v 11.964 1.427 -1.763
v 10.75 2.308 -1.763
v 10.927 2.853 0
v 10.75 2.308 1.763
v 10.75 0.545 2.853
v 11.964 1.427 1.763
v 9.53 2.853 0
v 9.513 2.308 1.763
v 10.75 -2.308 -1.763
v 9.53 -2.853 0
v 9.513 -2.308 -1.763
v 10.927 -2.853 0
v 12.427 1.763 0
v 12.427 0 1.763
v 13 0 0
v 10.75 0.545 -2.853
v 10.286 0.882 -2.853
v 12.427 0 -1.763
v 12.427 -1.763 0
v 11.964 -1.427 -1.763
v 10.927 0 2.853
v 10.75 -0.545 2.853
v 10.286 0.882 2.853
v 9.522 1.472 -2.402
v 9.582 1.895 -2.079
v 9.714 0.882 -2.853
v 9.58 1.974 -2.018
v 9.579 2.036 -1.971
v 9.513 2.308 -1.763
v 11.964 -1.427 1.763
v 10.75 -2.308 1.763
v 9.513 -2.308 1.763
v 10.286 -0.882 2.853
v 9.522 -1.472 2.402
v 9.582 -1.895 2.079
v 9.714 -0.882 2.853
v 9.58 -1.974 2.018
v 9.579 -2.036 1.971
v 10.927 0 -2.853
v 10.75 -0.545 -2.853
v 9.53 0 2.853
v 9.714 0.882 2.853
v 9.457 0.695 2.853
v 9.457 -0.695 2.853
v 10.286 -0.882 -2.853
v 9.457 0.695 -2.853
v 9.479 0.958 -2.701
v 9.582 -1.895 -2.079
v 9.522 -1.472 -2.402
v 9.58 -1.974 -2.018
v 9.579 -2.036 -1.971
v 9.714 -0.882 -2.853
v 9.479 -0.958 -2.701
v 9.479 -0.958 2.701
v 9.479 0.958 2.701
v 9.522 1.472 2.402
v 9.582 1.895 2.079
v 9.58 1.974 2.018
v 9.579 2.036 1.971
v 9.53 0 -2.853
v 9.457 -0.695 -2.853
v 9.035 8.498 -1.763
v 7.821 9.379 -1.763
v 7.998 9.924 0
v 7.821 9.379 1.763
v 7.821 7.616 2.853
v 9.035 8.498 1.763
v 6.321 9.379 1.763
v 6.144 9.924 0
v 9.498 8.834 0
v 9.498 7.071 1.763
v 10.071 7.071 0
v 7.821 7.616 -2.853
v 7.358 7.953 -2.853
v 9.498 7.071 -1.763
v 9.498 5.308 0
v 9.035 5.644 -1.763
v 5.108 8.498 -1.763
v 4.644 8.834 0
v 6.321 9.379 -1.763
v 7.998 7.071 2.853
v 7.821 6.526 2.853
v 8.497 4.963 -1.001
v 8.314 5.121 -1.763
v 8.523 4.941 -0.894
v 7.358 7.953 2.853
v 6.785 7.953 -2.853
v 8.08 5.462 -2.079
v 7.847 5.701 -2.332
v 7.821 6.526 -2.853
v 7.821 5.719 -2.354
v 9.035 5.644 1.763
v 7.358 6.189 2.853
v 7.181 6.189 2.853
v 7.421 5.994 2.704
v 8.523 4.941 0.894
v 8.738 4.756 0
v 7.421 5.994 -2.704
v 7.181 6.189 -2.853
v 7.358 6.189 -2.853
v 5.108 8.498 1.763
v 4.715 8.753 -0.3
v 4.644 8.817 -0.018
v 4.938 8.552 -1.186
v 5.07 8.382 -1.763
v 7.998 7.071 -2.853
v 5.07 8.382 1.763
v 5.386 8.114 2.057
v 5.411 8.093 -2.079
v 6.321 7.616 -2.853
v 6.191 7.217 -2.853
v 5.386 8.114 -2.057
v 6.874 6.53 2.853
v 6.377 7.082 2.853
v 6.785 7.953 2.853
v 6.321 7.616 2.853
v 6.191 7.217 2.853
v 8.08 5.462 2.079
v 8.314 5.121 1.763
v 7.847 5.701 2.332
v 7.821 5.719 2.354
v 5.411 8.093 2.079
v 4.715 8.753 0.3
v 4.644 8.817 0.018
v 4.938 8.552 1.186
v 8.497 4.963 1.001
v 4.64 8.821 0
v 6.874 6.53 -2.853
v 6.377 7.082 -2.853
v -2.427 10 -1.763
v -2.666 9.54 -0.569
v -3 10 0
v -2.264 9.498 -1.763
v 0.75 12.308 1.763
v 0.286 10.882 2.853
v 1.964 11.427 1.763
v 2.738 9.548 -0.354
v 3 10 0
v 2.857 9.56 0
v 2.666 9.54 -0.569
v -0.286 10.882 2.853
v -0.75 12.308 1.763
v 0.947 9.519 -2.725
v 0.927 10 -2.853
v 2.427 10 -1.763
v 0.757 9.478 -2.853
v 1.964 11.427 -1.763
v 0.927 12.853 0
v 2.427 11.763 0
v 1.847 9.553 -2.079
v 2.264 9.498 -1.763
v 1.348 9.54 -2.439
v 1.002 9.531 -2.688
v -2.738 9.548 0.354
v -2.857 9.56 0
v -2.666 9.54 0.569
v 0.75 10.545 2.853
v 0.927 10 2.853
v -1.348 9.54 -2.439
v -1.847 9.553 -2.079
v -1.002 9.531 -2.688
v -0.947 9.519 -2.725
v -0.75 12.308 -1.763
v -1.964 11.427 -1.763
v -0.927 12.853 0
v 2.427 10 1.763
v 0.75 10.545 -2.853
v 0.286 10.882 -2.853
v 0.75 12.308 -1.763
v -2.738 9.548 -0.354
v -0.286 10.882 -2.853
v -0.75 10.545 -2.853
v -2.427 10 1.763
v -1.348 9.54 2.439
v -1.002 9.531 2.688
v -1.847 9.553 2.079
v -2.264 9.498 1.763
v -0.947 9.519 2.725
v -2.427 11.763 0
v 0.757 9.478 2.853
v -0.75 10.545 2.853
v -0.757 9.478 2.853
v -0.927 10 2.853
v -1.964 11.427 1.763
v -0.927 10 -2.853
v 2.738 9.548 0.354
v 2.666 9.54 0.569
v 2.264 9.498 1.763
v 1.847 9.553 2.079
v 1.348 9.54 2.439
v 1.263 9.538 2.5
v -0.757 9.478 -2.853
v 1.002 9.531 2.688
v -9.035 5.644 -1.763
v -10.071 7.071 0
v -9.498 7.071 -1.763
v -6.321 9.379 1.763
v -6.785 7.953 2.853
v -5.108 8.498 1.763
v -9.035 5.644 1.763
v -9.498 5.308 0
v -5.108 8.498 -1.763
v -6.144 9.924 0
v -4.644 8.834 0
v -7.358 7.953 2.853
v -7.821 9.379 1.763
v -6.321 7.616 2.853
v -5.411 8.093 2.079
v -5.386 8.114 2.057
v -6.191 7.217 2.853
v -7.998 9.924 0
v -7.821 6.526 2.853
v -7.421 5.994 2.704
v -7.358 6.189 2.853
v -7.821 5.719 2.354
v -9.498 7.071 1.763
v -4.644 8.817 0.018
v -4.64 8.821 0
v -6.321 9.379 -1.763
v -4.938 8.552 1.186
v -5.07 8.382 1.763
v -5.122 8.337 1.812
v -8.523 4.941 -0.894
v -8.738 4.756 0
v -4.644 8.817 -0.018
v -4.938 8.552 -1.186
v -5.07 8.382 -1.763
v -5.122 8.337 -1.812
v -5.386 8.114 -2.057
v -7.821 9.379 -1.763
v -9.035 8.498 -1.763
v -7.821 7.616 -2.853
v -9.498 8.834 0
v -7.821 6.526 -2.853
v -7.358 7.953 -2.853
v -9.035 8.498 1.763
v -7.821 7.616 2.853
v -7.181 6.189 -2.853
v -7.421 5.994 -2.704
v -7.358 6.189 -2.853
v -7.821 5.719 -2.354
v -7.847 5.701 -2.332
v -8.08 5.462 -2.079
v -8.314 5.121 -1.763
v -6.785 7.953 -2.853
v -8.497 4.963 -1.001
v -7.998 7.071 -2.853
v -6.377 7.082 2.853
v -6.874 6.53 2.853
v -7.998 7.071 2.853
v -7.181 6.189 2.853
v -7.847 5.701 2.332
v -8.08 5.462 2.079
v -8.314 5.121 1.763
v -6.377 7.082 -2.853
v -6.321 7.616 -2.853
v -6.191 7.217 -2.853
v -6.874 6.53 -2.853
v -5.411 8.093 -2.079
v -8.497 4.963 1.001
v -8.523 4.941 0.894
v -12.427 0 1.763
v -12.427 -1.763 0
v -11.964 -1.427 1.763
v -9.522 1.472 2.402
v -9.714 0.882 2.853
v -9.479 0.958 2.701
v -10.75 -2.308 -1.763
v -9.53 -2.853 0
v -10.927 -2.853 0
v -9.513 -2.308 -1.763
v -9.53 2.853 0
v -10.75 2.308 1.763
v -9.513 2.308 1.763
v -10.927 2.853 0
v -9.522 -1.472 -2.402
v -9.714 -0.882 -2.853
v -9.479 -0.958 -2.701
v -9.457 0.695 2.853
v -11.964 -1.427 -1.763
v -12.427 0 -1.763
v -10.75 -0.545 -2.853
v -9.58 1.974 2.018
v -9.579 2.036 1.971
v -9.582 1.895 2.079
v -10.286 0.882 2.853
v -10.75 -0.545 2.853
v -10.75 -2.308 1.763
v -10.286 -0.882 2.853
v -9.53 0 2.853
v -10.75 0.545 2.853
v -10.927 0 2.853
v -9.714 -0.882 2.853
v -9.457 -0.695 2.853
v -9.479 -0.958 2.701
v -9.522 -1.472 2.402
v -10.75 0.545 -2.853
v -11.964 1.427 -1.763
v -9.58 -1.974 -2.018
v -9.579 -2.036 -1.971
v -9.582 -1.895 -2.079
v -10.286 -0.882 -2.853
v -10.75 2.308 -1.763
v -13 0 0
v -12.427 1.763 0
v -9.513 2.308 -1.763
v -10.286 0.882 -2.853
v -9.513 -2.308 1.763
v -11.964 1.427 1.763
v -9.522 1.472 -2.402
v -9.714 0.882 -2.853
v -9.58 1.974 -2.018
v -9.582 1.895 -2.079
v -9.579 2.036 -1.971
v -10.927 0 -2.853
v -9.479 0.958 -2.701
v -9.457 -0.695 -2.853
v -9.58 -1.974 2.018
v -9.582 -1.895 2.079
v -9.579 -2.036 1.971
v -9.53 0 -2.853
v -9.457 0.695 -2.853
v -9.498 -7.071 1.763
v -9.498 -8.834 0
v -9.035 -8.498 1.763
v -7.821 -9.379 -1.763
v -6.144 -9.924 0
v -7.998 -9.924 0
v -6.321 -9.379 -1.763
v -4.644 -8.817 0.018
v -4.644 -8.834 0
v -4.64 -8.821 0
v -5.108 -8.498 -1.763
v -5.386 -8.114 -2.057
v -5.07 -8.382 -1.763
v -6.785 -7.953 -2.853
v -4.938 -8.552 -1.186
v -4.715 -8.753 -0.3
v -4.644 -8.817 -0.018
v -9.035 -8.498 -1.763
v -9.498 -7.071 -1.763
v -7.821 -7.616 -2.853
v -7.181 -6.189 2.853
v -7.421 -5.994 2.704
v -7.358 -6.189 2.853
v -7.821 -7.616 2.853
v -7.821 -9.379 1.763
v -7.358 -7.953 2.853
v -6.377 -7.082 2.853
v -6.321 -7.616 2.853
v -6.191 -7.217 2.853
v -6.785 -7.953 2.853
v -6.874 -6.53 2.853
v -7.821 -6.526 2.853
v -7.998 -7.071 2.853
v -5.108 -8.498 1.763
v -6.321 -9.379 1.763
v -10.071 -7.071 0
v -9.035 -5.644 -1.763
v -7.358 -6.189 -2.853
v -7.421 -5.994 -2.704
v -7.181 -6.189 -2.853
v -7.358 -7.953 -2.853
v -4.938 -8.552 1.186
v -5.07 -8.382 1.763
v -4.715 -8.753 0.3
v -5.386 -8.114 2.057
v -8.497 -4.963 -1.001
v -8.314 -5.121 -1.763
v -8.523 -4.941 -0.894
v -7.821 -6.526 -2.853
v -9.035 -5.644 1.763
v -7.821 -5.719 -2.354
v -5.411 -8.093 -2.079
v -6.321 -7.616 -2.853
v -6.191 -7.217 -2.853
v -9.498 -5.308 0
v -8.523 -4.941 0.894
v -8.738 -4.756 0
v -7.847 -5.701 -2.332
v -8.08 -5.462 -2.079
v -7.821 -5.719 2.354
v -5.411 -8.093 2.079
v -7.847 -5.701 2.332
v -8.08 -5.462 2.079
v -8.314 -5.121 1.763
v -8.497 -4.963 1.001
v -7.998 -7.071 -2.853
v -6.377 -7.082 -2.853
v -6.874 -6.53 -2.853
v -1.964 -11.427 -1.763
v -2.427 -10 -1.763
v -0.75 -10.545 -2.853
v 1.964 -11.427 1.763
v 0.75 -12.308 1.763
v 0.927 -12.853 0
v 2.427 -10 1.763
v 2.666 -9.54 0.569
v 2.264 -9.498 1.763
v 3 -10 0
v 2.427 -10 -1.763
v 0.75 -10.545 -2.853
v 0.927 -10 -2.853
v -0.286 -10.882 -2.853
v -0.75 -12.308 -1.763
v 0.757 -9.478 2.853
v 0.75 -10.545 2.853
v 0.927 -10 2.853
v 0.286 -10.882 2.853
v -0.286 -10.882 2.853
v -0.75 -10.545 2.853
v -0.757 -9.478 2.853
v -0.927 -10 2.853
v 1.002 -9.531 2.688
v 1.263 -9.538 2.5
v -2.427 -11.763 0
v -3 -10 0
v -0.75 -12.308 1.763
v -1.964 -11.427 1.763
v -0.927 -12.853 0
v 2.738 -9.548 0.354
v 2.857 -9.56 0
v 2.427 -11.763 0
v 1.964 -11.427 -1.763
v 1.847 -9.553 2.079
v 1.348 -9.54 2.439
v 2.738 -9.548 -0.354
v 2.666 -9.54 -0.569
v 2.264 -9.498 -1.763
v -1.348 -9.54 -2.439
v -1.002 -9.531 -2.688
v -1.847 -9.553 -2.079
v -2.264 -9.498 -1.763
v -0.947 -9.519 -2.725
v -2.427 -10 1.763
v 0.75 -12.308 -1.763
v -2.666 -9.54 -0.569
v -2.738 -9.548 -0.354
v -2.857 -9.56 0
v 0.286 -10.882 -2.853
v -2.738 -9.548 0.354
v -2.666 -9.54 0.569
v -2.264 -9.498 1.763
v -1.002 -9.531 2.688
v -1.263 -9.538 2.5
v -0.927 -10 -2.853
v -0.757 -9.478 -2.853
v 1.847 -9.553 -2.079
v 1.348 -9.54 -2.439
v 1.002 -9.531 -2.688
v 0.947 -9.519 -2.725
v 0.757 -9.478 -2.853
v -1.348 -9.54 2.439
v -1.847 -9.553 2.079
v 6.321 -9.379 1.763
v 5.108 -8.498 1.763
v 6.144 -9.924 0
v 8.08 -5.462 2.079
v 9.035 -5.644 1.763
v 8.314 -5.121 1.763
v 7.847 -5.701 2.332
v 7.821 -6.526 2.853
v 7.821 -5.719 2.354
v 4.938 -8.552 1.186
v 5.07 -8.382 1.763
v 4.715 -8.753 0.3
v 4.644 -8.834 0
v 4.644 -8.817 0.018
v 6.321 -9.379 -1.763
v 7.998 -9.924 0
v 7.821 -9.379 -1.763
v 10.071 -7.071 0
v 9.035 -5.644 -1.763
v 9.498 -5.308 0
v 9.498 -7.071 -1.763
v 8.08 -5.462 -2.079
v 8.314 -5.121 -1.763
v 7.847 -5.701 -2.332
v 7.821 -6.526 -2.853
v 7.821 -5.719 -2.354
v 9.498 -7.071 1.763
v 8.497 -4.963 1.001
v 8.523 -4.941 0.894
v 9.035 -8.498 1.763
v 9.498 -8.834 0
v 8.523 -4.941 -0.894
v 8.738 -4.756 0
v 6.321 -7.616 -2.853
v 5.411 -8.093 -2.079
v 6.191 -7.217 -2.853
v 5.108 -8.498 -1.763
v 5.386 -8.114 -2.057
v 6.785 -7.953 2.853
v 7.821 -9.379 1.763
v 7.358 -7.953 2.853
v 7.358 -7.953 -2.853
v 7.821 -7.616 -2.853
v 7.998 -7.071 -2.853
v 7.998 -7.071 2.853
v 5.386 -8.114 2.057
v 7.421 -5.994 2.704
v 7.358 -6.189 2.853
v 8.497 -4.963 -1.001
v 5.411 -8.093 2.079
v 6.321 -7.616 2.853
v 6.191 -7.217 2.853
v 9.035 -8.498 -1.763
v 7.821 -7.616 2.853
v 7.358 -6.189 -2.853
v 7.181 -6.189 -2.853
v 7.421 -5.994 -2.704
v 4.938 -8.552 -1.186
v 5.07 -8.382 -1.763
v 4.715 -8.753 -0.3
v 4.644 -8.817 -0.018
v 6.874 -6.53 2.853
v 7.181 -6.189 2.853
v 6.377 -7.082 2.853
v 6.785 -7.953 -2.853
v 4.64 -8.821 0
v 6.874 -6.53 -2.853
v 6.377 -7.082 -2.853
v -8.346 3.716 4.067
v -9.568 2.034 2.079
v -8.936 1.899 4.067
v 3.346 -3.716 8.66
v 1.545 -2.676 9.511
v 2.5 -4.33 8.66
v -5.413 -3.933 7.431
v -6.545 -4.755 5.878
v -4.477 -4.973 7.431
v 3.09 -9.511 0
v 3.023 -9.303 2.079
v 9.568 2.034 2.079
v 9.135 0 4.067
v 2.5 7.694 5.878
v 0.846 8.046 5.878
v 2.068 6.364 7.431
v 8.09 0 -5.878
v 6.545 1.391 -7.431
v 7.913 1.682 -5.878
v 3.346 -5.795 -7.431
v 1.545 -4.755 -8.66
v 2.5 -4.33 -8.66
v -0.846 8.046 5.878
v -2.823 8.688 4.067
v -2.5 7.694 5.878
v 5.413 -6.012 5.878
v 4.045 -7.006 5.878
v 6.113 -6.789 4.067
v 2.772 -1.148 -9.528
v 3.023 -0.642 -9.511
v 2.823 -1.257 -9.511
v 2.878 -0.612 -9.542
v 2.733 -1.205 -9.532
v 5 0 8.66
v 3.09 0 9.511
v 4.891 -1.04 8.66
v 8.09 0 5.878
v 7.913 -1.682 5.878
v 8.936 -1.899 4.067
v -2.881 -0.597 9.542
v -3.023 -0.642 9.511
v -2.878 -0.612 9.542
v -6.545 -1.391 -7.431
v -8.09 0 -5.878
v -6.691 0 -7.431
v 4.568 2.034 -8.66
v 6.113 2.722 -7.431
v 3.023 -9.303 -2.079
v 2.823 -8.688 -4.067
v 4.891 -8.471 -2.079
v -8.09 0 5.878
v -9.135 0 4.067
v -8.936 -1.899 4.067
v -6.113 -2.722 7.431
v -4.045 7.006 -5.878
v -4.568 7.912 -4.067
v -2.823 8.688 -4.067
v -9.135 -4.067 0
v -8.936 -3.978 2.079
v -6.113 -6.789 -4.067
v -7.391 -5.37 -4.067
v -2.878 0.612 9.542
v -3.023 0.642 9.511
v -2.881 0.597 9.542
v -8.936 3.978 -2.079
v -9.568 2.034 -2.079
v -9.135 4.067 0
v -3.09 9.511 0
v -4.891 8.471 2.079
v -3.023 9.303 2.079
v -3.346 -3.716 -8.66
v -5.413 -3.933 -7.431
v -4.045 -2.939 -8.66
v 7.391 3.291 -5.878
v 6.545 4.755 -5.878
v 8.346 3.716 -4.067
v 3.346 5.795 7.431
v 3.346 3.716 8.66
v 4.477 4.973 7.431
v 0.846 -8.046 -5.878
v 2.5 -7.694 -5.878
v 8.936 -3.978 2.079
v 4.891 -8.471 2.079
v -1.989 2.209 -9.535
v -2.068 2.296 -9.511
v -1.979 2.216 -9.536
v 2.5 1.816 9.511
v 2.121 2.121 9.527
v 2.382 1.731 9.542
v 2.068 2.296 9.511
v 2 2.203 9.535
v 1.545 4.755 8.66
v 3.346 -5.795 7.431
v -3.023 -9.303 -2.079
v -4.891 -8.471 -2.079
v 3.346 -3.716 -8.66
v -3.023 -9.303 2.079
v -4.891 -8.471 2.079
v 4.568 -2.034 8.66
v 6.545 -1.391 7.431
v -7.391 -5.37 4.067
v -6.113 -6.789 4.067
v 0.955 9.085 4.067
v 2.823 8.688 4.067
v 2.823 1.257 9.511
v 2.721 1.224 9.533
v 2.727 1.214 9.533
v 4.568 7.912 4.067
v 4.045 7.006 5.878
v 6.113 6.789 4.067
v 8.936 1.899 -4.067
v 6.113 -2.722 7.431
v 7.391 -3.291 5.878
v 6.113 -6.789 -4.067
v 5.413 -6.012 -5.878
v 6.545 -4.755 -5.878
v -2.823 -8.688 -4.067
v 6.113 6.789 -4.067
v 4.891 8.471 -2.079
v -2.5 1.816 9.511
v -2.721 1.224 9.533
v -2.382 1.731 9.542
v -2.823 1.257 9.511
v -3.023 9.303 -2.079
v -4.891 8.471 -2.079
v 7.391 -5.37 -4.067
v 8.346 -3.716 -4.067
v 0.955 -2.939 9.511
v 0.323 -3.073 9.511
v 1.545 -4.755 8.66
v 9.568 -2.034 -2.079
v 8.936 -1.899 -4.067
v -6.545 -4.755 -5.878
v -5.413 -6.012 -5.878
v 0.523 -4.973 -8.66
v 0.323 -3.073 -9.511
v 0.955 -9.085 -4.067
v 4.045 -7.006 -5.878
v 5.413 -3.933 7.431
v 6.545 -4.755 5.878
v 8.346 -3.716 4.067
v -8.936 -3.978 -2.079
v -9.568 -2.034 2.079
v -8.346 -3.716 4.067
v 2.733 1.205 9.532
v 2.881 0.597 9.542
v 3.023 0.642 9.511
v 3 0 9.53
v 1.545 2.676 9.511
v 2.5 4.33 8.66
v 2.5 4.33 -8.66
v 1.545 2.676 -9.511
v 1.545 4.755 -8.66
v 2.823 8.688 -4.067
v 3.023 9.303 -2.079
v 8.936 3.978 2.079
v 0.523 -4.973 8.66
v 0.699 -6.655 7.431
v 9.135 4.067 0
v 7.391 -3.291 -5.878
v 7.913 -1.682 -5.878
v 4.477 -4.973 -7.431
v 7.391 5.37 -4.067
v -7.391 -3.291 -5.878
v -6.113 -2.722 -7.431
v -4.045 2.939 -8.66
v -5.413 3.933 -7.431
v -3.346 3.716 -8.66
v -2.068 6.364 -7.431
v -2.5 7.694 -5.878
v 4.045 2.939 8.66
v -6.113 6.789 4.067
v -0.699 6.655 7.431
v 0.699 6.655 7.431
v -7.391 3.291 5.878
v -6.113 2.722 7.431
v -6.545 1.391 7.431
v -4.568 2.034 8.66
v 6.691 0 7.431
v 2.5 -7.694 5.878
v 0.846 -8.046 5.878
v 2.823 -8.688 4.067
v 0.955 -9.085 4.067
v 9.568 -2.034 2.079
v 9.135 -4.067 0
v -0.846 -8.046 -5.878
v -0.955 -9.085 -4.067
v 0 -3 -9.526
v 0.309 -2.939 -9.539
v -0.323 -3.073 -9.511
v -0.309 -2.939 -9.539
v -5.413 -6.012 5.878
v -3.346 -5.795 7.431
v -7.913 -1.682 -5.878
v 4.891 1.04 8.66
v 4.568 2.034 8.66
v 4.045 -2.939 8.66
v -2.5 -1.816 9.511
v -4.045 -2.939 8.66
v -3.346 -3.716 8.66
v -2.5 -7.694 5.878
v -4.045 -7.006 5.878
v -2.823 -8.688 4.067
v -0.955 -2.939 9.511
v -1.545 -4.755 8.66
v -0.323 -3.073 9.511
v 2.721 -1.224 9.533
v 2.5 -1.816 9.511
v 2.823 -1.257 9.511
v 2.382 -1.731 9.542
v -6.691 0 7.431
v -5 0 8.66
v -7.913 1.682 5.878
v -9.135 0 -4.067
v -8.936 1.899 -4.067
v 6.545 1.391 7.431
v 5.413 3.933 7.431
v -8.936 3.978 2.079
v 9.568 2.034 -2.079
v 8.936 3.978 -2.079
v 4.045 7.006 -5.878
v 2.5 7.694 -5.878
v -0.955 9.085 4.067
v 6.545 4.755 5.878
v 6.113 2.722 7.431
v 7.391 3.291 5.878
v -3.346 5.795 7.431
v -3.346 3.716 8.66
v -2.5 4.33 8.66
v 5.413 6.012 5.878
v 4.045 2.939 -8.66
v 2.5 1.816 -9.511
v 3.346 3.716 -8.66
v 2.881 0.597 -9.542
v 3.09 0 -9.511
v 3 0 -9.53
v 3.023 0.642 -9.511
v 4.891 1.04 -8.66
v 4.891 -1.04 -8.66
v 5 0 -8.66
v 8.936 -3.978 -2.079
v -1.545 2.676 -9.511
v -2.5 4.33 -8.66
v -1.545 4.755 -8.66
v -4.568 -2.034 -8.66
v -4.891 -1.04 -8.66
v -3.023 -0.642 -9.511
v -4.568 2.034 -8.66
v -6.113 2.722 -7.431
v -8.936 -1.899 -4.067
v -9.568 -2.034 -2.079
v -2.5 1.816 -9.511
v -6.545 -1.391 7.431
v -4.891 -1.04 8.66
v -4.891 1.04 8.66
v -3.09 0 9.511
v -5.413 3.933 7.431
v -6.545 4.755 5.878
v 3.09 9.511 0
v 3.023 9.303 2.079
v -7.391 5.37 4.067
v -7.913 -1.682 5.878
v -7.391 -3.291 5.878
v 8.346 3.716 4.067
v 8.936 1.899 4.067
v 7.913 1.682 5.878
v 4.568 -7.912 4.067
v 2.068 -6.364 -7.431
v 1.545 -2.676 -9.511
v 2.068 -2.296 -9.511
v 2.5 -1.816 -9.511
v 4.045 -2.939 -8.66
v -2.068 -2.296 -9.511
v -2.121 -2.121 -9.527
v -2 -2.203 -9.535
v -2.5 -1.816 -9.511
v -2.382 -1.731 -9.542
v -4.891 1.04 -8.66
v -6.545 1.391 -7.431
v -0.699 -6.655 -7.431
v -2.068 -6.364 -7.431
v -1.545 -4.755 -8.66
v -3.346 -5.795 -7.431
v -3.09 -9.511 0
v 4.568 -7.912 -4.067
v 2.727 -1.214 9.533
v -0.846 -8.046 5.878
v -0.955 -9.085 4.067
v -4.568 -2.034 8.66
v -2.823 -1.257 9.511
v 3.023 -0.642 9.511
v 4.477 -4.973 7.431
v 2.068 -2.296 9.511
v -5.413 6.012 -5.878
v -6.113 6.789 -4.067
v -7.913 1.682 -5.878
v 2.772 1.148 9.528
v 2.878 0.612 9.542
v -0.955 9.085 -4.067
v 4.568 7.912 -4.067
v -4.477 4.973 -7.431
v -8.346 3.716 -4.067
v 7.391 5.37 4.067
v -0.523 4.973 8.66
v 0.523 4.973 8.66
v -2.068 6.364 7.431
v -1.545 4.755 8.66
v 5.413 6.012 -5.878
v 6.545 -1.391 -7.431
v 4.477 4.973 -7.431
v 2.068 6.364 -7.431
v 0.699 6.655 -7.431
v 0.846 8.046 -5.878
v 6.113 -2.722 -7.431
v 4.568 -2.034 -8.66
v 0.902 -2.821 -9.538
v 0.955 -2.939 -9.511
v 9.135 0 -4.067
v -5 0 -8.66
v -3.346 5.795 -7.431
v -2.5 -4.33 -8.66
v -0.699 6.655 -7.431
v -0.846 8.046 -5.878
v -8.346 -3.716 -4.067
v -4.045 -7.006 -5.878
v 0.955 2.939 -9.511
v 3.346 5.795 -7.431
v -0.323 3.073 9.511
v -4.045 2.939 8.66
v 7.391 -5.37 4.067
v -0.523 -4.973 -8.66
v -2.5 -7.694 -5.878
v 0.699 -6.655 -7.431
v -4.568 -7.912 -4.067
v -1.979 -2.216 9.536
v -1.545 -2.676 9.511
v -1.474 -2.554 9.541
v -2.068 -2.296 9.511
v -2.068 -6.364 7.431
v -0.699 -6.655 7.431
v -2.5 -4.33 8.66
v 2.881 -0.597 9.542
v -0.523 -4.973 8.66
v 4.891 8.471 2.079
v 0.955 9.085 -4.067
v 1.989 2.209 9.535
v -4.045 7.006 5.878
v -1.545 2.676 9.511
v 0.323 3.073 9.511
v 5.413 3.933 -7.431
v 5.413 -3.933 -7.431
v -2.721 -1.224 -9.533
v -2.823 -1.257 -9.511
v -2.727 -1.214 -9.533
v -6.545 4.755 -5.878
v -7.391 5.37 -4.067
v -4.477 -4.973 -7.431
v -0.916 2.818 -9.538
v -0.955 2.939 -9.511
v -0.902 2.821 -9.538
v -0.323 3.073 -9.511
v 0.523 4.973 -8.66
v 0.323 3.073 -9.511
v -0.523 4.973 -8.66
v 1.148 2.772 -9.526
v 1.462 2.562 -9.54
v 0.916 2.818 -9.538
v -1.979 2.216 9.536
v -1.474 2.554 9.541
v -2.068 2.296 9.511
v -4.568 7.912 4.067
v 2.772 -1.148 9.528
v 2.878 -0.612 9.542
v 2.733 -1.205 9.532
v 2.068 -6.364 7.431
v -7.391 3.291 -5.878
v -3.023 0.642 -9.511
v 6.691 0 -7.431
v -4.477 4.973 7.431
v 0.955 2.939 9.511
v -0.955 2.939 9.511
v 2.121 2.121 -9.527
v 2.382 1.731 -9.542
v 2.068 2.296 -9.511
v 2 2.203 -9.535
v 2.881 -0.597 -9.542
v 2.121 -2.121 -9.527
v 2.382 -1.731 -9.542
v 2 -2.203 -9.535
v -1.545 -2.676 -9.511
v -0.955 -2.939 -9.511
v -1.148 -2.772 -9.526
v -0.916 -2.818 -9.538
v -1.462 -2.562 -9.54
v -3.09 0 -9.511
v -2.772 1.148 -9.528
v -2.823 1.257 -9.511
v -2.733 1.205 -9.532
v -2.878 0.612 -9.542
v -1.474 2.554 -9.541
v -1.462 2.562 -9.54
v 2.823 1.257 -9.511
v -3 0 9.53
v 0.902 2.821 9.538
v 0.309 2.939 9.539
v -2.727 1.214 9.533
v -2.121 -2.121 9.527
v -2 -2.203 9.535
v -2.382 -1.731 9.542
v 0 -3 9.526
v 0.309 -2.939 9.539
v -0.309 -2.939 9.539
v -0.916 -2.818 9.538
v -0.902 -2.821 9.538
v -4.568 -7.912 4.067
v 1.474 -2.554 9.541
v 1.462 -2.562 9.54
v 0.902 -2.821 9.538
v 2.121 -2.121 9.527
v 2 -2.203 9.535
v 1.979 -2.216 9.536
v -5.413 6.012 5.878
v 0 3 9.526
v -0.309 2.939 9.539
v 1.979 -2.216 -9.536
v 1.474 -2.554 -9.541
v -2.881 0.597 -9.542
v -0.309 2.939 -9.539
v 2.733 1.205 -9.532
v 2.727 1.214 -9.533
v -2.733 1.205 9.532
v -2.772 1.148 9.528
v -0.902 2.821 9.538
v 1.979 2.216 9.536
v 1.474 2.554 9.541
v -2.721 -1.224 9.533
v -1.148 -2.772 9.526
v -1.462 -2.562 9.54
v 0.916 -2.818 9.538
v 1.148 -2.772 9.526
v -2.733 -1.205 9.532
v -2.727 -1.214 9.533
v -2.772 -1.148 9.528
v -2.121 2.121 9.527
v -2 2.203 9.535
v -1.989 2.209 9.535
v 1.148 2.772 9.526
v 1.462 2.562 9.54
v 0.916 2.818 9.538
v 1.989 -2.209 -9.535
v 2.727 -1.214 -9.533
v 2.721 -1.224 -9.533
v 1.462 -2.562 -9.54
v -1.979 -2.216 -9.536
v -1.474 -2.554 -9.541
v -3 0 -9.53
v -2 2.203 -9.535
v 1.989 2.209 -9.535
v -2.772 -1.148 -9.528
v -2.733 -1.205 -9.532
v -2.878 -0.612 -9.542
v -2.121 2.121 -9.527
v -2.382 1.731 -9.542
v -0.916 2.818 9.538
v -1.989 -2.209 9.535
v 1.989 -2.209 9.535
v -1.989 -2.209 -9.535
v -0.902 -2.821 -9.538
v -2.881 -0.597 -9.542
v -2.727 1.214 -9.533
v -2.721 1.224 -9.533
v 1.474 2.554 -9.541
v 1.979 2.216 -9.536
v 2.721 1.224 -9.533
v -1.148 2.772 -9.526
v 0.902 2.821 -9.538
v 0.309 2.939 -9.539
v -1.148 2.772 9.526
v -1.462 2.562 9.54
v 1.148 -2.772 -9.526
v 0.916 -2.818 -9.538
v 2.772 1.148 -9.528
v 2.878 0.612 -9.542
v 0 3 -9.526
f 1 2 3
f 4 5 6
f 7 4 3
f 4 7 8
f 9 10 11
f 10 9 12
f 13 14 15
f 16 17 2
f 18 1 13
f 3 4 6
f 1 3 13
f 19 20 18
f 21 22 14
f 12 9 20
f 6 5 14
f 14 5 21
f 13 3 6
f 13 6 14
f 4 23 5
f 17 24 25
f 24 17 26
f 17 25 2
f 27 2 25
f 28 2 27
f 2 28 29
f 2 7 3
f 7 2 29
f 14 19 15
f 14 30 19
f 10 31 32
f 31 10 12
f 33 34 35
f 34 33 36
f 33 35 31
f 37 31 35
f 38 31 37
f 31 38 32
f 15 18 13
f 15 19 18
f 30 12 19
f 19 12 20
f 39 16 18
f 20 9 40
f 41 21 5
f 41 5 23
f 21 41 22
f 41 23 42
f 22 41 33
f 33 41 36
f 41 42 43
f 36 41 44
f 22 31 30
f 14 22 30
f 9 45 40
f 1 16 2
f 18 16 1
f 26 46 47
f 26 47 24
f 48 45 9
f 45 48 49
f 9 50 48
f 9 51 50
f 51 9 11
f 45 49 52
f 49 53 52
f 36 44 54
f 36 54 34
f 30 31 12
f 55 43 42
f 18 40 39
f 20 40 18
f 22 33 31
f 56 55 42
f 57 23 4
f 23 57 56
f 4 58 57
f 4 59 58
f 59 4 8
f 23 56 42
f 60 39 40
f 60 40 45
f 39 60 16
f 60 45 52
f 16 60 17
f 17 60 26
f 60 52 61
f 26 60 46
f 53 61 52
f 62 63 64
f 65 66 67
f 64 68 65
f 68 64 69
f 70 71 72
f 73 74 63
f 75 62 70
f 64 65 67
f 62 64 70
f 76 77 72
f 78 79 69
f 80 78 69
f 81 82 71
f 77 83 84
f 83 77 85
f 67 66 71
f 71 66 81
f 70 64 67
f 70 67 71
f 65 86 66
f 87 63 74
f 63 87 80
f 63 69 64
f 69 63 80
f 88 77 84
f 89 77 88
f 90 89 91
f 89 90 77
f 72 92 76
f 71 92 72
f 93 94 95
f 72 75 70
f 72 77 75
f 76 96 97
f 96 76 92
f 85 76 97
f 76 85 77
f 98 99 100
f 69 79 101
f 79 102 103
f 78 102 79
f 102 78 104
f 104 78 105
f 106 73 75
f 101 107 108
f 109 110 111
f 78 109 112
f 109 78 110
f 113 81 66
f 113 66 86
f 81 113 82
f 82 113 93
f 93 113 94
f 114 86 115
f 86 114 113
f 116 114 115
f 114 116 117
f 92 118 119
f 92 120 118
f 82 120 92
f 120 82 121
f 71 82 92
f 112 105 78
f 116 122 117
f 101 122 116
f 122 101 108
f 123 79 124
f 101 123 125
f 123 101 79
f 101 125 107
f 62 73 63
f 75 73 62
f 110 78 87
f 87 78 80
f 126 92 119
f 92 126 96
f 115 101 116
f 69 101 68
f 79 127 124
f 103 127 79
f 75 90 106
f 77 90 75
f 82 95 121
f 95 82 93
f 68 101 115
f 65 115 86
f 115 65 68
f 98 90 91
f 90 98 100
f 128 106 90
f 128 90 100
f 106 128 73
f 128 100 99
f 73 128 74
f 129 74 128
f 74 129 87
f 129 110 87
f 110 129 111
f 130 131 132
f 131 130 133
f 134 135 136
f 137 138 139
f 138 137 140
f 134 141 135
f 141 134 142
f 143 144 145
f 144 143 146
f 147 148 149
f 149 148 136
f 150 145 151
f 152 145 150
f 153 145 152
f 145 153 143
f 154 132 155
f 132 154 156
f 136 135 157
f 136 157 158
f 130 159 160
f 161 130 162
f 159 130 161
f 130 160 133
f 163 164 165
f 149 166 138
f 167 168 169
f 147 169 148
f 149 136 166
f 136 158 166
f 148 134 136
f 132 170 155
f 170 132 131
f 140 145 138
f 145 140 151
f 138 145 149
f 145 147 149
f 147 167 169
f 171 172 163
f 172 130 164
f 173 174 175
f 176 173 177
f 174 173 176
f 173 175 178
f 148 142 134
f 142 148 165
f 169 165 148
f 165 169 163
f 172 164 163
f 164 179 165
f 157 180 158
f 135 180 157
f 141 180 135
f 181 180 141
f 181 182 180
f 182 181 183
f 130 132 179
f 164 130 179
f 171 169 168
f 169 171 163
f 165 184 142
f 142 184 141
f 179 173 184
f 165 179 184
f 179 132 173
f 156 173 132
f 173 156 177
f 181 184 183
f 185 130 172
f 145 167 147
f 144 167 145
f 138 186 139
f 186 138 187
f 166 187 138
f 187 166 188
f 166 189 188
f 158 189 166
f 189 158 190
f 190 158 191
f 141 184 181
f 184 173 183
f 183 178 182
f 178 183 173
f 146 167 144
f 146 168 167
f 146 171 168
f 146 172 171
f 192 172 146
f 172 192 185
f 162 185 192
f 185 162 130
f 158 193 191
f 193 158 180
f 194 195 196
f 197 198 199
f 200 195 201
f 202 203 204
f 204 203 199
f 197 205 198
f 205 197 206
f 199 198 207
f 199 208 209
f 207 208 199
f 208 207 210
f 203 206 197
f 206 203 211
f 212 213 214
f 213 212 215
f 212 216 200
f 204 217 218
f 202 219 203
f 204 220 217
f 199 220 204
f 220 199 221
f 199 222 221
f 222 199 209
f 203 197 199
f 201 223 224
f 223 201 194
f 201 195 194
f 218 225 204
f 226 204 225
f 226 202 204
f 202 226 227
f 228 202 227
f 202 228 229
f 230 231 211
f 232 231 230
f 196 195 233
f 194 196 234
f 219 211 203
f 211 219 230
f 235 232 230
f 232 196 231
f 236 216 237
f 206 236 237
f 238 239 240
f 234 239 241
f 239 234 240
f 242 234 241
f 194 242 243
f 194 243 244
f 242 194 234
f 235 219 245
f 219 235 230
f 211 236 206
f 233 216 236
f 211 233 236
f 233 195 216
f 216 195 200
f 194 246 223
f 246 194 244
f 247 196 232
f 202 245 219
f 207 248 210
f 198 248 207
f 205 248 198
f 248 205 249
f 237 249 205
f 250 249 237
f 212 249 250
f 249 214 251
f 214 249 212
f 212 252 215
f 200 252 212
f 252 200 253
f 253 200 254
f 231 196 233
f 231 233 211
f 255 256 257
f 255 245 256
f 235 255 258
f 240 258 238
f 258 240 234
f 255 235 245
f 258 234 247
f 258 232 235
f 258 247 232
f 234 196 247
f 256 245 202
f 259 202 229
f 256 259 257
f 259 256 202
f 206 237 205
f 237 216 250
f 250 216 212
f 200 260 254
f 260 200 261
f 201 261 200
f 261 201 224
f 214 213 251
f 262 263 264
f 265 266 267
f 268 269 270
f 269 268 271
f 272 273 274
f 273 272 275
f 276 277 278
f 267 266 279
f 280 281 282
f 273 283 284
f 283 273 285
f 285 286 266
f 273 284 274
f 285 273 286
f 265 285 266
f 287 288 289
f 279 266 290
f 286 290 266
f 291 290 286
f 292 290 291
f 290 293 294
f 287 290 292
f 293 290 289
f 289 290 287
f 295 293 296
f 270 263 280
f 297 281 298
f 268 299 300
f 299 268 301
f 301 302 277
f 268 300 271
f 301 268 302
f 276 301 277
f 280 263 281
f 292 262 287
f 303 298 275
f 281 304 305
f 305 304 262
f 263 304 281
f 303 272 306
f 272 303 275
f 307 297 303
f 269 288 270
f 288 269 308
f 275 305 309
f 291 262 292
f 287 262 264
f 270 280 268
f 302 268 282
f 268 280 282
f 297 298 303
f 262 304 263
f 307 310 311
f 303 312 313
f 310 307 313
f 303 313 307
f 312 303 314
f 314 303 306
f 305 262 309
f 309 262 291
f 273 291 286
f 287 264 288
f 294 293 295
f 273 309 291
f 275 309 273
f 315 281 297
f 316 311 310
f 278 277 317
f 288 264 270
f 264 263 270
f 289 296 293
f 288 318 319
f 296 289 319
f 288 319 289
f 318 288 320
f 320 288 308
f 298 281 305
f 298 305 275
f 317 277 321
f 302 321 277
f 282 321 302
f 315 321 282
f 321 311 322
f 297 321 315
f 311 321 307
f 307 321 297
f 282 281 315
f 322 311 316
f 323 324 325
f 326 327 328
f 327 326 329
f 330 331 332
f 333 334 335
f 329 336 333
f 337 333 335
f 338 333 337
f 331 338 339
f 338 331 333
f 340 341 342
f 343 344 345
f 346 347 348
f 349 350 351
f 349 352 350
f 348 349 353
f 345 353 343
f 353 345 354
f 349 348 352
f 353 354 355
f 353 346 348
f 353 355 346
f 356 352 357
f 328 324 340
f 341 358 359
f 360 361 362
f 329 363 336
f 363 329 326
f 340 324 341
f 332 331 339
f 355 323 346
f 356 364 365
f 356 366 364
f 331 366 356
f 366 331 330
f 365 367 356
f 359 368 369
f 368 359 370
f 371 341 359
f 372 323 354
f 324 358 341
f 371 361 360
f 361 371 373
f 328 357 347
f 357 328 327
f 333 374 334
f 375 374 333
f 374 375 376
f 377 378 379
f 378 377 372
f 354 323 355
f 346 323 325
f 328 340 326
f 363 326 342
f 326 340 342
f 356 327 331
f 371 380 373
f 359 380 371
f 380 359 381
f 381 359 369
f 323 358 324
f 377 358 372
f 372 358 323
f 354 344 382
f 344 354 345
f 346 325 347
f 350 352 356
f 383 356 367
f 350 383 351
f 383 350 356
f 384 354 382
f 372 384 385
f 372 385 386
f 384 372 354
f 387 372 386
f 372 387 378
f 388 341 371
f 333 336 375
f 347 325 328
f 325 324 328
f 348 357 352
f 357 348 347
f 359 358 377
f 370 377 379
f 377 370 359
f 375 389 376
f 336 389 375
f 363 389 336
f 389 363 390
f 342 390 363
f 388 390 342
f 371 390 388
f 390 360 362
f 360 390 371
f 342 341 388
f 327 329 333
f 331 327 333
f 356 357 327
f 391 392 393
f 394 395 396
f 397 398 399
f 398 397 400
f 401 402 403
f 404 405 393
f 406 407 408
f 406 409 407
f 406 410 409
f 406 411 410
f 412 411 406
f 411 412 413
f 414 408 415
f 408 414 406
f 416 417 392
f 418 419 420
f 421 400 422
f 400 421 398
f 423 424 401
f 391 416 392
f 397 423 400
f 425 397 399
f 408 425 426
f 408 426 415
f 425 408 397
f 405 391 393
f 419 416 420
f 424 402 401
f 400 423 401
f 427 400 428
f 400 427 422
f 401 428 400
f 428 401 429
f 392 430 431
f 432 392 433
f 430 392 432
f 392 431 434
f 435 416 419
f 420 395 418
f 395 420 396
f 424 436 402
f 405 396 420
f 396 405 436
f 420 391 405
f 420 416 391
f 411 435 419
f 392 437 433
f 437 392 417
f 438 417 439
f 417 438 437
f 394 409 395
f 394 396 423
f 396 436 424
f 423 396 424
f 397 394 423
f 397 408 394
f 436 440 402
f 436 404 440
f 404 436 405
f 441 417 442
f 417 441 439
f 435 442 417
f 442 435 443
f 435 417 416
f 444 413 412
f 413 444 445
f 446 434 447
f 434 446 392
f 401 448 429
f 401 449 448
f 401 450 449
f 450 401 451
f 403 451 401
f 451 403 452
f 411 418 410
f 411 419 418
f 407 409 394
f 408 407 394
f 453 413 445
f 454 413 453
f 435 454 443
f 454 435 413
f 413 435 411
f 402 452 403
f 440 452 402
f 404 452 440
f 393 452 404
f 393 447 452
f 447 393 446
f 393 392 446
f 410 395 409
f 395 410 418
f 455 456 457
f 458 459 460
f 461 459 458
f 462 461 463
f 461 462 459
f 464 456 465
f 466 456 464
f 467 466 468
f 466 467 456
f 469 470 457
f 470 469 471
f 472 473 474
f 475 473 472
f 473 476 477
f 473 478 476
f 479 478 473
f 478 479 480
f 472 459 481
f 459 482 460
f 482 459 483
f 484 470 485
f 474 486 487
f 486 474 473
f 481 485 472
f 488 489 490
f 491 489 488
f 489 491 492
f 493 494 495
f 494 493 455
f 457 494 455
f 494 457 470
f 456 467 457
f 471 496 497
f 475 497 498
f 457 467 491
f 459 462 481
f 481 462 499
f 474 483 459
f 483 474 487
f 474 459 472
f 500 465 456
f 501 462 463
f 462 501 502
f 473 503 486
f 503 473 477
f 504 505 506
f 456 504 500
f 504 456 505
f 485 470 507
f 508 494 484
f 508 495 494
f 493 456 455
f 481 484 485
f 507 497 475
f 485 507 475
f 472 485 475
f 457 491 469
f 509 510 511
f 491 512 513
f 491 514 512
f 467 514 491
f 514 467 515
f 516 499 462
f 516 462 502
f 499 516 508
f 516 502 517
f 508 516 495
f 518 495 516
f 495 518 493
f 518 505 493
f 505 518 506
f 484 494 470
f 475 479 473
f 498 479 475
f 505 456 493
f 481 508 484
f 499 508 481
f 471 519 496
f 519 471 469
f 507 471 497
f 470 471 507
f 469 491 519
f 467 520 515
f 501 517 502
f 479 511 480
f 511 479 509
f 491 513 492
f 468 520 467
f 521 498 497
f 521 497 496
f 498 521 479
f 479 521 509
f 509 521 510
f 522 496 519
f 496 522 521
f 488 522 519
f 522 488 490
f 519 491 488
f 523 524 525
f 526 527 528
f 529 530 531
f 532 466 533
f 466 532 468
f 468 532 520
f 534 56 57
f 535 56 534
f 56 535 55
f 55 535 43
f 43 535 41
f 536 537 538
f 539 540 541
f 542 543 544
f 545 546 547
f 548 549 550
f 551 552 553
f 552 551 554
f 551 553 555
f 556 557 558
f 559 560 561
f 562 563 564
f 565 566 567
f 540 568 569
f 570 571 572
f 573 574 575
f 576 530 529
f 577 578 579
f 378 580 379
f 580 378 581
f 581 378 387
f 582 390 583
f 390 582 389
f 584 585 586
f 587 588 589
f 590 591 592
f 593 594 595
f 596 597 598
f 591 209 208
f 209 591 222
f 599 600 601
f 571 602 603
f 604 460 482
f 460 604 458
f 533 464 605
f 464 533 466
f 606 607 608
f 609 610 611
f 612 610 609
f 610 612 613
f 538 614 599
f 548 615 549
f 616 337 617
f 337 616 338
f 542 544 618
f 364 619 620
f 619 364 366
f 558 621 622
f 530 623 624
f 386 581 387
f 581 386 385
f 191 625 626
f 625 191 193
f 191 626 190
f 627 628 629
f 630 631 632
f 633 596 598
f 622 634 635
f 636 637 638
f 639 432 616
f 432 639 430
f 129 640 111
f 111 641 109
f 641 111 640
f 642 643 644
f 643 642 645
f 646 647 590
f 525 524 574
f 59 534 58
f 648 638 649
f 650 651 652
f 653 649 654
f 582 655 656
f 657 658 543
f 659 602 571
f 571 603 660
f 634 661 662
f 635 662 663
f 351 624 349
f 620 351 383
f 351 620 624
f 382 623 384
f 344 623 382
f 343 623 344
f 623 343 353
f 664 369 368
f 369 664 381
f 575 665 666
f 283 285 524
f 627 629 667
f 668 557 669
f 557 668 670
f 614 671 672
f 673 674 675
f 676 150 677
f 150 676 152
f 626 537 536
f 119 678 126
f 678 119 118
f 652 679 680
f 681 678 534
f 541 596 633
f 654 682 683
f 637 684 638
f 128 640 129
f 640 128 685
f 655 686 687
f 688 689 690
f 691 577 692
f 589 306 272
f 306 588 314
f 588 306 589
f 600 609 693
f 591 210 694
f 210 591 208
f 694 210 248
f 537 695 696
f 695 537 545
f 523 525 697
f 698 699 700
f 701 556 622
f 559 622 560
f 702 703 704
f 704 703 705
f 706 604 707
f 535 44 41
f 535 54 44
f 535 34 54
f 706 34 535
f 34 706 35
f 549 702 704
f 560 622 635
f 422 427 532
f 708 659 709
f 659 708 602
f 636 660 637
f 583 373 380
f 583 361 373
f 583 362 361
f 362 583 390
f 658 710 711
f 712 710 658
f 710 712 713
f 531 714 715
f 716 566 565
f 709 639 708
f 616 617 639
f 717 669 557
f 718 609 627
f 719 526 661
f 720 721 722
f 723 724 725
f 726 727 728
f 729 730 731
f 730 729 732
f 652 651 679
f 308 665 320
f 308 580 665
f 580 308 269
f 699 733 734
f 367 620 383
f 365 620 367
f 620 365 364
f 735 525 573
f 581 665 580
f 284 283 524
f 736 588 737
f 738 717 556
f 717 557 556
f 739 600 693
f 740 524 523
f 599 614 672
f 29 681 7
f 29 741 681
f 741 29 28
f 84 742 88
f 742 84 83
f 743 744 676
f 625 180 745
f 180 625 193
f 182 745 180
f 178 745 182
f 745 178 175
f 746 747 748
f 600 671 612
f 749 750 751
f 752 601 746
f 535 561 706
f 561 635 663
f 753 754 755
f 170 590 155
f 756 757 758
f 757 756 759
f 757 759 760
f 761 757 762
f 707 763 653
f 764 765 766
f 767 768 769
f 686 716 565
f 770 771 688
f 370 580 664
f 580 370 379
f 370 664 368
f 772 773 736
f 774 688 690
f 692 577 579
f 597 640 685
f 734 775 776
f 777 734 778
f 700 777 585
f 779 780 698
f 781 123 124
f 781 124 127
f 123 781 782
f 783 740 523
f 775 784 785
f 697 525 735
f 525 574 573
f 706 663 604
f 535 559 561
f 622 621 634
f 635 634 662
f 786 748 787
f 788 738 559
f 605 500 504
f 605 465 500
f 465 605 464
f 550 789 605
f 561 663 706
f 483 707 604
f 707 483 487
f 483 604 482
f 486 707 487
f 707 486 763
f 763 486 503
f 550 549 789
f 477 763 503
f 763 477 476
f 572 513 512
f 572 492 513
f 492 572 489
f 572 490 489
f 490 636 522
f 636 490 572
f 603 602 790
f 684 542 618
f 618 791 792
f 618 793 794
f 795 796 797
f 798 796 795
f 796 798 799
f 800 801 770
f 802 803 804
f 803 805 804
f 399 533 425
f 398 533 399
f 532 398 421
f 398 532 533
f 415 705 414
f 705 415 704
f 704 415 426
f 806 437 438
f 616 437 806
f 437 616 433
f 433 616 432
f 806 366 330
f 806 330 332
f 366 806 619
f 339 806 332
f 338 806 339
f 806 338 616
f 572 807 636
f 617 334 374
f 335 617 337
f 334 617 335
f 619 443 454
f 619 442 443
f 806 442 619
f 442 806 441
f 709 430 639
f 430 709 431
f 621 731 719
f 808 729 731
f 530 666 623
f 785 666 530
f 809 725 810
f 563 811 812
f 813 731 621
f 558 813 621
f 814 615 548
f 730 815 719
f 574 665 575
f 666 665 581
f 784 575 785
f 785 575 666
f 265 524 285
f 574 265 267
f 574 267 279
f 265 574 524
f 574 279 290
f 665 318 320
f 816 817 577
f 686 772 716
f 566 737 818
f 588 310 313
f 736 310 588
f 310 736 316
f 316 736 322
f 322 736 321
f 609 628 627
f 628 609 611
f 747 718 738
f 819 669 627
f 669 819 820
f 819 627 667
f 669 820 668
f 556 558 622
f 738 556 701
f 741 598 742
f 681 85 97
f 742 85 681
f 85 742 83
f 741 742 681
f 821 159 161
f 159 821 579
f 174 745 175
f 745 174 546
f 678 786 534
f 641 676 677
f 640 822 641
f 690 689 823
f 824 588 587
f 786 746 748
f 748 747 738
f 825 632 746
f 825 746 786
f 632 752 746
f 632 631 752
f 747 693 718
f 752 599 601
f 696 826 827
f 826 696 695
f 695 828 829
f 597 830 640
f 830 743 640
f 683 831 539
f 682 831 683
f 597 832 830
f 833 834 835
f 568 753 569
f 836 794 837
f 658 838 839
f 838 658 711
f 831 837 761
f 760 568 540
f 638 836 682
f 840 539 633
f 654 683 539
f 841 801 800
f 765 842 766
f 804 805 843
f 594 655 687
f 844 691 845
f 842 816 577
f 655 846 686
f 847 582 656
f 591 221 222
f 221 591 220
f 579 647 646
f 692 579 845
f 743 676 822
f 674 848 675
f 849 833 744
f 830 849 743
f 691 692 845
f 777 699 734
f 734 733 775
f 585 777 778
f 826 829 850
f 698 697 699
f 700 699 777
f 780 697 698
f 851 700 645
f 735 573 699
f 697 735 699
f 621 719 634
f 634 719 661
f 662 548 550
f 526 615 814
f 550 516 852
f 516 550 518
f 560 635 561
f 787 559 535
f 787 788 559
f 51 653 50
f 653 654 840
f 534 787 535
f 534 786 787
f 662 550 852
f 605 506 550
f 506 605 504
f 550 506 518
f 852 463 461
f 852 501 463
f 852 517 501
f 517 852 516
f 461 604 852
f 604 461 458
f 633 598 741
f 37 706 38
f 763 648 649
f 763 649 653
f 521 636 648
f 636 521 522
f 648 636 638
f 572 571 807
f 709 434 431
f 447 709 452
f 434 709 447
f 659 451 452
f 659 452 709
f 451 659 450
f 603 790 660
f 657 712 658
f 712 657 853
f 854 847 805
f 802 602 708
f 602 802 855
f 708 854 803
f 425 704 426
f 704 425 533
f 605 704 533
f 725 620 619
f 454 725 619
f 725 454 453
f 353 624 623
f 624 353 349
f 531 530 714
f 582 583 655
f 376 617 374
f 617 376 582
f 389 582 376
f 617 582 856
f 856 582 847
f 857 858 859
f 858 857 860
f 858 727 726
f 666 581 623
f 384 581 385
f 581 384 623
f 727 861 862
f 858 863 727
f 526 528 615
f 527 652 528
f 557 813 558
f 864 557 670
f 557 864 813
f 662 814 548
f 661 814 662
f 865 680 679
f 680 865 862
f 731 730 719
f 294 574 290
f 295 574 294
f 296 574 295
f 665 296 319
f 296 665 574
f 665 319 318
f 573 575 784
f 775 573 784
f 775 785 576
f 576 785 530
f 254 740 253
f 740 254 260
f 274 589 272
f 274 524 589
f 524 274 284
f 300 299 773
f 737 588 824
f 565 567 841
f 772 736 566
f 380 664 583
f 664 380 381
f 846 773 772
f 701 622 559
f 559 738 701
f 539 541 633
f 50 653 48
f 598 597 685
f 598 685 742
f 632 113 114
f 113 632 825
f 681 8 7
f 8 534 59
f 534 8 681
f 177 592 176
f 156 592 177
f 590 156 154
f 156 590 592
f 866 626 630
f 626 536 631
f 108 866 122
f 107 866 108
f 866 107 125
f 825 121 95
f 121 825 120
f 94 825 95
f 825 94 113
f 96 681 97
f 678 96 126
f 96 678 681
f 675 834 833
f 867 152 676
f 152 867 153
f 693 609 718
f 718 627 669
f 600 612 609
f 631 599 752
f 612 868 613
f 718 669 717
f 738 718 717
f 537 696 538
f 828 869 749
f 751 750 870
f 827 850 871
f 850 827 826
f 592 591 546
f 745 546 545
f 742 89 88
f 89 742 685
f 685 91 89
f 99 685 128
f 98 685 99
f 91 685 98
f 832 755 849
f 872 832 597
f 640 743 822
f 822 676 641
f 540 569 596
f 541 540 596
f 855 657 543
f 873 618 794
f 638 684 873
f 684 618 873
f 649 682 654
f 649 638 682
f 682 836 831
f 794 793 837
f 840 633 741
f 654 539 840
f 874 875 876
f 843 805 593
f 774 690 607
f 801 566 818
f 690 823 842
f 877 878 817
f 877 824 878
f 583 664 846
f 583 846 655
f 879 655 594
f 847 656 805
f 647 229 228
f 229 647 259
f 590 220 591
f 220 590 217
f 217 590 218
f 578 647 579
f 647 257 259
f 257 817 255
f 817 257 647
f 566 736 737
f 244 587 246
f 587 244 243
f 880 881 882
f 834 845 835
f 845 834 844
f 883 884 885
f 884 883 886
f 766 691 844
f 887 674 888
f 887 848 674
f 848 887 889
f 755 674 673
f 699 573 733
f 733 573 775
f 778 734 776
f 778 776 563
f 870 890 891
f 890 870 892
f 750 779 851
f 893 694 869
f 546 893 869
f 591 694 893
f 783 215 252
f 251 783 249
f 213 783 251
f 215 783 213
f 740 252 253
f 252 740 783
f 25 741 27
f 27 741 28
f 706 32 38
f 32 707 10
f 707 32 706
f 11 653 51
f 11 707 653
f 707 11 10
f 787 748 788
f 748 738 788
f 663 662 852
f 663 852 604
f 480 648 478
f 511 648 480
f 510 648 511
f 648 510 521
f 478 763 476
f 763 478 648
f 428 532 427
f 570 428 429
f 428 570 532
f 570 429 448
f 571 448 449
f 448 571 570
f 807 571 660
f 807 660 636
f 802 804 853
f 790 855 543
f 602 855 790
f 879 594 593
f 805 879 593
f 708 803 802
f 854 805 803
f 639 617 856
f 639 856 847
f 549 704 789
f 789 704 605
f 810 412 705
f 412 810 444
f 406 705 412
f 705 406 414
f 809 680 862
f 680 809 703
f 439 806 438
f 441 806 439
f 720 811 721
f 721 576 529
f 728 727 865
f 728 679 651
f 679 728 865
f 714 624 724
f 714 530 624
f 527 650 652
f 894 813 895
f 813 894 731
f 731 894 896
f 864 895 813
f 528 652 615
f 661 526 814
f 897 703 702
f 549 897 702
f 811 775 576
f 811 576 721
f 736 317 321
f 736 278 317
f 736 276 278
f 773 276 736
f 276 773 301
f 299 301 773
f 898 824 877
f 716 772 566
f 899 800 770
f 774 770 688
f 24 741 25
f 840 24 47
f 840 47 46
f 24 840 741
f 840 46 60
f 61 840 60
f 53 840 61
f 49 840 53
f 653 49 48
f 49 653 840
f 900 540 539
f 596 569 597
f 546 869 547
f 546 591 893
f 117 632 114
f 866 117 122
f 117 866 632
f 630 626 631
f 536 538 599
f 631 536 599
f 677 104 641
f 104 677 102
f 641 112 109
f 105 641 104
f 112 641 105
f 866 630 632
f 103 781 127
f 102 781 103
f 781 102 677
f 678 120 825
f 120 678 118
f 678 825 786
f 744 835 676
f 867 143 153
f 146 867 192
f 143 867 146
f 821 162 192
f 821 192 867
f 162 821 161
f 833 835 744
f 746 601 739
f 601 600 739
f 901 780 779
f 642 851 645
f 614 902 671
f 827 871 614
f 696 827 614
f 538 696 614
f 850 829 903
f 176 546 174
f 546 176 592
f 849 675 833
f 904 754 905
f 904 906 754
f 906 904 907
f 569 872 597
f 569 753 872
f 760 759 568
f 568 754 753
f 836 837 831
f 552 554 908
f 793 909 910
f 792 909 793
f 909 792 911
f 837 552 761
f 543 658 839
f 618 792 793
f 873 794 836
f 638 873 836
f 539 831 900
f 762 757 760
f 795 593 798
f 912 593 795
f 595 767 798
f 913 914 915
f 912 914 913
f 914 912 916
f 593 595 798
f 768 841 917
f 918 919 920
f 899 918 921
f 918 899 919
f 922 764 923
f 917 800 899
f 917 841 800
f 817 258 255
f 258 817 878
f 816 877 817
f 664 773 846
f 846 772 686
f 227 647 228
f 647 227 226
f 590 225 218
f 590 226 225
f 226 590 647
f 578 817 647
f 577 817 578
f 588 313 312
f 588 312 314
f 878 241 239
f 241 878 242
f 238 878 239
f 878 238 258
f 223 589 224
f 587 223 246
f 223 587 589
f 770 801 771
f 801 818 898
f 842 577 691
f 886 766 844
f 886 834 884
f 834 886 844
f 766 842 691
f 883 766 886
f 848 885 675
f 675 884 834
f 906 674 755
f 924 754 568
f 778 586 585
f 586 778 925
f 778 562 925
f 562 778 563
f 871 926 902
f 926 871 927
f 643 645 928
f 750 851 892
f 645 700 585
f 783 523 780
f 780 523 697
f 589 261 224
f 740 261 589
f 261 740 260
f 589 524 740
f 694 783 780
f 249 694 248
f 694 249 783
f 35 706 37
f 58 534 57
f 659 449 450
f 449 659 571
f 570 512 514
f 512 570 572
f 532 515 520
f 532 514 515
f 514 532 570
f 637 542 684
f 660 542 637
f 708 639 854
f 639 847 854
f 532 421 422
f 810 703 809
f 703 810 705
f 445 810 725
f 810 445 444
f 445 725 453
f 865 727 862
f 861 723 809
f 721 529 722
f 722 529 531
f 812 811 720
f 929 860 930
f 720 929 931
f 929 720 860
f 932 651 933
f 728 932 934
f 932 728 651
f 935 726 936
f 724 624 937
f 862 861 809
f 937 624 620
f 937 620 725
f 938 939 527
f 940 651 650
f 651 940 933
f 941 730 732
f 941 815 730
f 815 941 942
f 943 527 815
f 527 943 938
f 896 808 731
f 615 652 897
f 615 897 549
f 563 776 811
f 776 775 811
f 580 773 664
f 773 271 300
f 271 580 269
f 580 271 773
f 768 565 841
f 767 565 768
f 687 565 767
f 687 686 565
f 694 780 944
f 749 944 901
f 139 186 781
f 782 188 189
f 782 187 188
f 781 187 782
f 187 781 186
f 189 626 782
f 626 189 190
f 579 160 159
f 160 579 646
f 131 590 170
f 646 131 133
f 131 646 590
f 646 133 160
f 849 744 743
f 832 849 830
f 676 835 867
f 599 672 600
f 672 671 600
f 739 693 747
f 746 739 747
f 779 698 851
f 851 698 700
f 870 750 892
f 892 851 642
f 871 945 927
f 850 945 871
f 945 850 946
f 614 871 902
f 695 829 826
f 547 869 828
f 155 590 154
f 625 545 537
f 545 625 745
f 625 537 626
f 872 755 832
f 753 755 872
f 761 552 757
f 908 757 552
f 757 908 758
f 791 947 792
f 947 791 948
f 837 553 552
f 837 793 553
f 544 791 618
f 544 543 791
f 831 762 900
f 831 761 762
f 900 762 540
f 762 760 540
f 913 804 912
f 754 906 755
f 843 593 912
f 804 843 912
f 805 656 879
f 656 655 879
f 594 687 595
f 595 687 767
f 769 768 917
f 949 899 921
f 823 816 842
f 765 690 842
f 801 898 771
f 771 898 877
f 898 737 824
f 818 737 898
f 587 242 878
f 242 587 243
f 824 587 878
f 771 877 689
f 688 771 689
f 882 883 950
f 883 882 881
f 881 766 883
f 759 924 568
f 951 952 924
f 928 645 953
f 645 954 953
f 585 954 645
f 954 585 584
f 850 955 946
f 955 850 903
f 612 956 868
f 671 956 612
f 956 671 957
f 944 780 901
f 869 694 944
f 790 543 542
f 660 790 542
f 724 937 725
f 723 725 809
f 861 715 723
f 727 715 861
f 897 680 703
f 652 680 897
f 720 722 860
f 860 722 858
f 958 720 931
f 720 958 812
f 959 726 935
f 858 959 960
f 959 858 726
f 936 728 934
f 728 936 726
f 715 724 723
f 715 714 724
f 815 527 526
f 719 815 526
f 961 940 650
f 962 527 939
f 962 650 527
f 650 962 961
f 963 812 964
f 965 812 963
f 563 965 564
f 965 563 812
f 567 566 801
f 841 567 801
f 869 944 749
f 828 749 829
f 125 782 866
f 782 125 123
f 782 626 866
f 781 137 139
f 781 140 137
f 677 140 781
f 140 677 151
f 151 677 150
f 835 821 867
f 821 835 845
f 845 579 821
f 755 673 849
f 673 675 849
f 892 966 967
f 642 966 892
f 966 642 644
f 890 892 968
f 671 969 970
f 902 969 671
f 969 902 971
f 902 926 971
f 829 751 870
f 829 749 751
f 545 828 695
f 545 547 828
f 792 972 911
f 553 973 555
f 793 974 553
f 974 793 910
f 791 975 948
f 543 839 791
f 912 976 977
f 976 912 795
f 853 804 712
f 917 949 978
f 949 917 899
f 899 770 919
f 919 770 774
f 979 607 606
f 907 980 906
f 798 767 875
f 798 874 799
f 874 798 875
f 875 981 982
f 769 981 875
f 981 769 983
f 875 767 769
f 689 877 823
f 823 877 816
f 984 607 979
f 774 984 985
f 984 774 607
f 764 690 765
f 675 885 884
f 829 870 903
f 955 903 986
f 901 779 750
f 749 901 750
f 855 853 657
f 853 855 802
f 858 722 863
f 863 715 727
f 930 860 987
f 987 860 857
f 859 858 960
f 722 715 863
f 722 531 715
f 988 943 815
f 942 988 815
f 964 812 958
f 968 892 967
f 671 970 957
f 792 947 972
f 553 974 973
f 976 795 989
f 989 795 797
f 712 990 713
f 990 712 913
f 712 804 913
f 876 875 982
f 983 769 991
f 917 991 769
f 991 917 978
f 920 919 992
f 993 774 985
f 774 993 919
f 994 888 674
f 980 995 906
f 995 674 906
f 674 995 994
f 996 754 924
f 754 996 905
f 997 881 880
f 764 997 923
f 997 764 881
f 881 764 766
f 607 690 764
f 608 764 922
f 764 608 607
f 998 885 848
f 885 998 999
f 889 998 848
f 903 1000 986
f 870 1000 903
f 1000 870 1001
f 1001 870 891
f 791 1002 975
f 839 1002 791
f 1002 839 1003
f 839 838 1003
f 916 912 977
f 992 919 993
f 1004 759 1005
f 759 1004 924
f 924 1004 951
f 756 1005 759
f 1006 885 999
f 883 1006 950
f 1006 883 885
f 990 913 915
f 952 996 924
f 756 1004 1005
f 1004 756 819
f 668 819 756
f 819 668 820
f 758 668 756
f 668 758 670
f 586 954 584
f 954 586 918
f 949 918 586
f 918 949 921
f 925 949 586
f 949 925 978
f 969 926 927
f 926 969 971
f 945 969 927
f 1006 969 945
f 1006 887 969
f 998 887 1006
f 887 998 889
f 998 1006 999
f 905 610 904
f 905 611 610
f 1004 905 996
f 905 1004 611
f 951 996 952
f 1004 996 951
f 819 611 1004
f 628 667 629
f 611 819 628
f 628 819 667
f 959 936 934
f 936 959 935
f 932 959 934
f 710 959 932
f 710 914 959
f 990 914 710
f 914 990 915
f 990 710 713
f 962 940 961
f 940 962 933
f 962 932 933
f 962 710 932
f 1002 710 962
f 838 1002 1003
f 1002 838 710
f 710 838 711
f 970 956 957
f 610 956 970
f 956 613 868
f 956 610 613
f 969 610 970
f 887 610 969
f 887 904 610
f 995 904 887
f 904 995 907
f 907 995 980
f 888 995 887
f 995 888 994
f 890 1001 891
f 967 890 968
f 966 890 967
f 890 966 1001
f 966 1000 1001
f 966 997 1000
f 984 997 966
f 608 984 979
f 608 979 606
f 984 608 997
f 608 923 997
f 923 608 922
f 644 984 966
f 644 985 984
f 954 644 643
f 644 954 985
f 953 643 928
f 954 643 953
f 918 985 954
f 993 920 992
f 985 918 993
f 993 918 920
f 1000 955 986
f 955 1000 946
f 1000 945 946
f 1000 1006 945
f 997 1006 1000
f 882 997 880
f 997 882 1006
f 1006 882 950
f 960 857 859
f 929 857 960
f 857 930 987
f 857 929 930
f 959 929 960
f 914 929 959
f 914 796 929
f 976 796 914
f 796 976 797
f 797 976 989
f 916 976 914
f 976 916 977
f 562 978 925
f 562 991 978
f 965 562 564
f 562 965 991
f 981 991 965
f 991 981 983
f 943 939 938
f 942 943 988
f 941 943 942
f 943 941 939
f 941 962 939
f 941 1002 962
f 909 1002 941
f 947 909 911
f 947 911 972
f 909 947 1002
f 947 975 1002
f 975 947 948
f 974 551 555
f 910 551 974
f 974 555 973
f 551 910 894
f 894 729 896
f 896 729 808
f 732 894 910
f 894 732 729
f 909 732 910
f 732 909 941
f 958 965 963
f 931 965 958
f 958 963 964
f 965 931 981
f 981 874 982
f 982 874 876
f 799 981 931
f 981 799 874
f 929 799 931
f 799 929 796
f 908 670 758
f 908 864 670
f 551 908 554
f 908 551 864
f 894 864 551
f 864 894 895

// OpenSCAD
difference() {
	union() {
		sphere (r=10);
		for( t=[0:45:360] ) {
			translate([10*cos(t),10*sin(t),0])
			sphere(r=3);
		}
	}
	translate([0,0,-15])
	cylinder(r=3,h=25,$fn=16);
}
